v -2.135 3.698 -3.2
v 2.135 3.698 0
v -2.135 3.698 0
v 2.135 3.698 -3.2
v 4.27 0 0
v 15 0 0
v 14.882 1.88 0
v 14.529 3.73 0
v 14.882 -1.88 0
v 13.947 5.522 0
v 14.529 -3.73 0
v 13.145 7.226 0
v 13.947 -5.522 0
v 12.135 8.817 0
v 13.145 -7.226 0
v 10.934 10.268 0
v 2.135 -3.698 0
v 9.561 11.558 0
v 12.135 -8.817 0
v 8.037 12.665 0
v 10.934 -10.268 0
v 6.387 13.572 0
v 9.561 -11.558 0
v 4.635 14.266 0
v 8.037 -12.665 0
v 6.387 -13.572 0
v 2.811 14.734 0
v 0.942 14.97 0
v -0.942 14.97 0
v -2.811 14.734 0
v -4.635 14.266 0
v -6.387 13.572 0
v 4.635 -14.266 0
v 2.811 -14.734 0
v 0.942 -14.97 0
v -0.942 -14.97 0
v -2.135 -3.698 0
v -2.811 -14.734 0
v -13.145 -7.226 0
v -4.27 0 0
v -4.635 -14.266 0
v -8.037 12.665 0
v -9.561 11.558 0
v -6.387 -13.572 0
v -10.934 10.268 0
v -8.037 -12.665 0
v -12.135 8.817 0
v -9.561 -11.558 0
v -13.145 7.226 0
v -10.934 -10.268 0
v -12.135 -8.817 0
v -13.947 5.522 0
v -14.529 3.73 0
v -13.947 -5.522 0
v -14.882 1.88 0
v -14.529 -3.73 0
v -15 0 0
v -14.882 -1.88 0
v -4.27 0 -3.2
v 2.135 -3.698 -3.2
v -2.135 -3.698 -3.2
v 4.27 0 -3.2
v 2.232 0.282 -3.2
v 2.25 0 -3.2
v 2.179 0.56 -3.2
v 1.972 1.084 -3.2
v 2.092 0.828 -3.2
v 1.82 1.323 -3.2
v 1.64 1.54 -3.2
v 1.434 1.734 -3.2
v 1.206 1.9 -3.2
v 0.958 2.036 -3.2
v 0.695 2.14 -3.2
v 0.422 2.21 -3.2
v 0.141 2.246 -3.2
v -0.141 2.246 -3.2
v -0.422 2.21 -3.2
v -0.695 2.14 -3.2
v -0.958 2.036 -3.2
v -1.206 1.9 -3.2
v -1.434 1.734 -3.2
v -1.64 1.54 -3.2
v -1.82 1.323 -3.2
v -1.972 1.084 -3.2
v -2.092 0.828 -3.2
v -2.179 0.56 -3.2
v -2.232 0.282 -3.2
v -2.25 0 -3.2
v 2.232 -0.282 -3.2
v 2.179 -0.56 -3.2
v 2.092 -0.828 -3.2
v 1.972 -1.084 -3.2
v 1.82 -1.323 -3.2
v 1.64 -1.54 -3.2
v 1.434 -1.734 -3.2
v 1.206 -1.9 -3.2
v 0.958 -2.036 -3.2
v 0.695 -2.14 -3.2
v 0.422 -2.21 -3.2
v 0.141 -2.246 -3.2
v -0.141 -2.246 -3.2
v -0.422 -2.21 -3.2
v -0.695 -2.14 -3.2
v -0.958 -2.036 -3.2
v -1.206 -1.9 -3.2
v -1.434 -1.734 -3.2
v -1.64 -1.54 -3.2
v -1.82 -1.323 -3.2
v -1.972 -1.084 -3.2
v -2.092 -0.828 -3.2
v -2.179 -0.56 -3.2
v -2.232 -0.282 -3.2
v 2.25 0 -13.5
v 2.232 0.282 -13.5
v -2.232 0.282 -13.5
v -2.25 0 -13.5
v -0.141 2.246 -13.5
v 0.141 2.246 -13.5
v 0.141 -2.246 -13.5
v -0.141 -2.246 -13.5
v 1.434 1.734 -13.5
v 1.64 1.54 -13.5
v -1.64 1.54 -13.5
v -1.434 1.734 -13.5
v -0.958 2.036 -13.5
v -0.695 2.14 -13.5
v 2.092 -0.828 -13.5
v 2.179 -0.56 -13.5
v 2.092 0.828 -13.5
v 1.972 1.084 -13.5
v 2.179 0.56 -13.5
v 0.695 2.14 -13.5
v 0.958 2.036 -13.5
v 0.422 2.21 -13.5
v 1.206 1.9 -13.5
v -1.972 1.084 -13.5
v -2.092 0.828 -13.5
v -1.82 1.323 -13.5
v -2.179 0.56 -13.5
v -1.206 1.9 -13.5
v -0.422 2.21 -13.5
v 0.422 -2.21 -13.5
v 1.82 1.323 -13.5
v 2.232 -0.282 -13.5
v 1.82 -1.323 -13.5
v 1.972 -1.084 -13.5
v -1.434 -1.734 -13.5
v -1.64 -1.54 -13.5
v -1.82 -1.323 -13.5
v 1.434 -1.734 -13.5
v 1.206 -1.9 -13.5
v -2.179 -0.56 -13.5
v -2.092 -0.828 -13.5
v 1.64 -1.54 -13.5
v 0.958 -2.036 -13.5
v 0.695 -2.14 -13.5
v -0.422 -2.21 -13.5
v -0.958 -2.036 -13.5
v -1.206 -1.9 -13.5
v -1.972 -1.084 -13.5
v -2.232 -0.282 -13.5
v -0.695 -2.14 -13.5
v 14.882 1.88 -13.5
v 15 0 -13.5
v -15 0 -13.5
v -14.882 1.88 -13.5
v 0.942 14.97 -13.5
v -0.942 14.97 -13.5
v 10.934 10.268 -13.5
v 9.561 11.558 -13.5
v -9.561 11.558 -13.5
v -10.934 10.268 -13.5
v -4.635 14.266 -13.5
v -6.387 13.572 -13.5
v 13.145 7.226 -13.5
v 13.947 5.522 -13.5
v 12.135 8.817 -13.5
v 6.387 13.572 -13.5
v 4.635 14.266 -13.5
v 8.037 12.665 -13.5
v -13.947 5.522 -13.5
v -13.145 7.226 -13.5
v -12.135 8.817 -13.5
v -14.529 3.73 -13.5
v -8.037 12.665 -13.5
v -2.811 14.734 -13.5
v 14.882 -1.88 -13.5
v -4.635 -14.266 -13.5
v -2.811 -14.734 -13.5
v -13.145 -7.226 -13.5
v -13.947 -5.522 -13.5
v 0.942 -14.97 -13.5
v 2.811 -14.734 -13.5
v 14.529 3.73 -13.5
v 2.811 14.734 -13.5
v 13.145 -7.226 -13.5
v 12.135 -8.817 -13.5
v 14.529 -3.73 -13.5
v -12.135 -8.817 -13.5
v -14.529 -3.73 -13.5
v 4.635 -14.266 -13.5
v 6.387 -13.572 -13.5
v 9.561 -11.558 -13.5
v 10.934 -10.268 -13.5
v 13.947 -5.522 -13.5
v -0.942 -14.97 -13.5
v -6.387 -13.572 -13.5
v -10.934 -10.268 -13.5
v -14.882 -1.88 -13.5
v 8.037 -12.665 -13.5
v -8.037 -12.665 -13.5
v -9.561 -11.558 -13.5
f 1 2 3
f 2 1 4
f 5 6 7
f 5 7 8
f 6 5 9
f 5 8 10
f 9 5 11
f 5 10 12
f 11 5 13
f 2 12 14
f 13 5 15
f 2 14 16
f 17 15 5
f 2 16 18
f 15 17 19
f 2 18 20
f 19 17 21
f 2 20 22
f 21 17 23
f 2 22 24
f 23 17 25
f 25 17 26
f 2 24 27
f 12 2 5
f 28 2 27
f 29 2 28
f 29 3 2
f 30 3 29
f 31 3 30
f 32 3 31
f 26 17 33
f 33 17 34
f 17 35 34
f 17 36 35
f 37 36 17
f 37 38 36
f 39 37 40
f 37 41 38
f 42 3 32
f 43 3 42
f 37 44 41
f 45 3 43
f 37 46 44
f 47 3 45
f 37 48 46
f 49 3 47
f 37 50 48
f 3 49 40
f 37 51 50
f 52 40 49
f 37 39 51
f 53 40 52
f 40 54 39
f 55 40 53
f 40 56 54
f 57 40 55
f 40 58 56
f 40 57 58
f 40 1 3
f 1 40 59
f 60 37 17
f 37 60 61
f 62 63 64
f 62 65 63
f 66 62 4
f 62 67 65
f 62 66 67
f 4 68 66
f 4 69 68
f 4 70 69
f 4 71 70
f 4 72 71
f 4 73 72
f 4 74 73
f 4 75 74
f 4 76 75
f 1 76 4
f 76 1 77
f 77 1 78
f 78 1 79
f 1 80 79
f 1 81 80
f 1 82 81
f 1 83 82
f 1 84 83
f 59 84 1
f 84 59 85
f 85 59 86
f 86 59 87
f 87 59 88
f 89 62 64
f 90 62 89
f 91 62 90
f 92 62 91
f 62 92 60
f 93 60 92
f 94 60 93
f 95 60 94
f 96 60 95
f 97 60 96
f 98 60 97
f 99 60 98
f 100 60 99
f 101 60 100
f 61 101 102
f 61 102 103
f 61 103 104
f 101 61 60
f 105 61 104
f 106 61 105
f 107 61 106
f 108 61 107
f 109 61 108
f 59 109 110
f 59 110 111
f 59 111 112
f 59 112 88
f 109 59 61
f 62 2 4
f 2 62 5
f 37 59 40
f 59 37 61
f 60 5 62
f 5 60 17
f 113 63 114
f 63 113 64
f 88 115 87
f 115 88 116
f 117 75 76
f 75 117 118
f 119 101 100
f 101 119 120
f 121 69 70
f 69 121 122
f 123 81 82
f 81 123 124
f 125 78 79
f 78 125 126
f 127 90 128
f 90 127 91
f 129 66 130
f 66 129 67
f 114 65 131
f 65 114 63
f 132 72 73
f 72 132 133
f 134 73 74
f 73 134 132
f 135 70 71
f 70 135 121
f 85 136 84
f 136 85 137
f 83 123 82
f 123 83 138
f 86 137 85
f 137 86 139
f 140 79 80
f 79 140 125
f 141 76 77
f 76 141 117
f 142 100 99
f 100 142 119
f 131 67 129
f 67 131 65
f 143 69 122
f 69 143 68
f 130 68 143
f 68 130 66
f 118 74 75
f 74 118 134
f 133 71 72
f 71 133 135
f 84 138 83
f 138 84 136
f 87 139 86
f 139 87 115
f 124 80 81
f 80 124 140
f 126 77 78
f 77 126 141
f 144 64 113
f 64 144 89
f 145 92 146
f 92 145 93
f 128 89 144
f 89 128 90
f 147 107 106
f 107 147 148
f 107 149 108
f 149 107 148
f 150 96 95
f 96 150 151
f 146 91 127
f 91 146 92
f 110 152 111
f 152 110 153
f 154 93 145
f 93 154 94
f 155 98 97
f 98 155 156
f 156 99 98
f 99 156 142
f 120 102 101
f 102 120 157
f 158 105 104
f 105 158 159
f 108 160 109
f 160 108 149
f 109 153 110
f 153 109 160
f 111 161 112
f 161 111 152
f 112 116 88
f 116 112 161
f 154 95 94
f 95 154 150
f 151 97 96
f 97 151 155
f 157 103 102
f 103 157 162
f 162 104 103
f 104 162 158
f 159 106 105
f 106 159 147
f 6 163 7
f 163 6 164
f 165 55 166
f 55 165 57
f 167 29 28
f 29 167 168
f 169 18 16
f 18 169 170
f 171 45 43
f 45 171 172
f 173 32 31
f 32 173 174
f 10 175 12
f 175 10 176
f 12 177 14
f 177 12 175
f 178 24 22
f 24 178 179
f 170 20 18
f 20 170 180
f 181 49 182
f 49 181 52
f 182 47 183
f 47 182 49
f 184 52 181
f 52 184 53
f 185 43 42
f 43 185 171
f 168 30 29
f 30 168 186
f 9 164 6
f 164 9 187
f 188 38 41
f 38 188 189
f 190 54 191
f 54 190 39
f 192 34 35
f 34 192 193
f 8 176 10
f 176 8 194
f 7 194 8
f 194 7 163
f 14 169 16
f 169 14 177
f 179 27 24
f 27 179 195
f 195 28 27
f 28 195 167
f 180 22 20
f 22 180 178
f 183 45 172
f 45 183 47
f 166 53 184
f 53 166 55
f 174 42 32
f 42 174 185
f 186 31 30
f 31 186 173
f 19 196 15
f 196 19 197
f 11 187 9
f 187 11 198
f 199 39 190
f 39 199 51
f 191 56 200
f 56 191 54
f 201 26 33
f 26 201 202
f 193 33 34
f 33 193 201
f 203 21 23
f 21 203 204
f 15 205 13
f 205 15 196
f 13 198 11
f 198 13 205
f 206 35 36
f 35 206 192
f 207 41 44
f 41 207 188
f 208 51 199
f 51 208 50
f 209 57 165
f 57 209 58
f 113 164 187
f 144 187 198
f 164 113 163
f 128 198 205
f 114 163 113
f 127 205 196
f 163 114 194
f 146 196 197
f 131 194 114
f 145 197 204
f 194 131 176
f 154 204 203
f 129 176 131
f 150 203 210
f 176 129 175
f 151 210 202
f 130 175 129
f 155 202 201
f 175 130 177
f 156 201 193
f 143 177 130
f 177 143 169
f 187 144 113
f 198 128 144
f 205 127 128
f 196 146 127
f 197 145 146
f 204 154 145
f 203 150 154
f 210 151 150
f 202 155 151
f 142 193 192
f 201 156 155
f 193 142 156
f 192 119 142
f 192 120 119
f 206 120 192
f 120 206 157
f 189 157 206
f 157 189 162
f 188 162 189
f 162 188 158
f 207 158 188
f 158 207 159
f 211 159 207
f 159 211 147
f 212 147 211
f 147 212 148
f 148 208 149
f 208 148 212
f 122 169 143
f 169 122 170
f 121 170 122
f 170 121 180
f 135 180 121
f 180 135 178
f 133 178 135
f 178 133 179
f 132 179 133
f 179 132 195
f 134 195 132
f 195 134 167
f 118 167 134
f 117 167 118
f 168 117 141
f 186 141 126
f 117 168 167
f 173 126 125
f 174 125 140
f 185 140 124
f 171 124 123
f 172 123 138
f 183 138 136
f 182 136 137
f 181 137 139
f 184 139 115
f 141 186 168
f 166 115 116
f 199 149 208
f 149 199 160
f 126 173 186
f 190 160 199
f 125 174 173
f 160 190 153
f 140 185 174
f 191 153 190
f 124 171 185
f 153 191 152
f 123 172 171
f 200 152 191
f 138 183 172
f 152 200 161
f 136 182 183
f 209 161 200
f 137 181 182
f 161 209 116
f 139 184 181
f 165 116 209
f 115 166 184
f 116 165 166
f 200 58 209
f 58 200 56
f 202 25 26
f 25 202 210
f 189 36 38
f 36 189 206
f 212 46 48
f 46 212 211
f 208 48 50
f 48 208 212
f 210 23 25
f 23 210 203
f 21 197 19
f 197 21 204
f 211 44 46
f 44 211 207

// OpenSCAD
$fn = 50;


difference() {
	union() {
		translate(v = [0, 0, -13.5000000000]) {
			cylinder(h = 13.5000000000, r = 15.0000000000);
		}
	}
	union() {
		translate(v = [0, 0, 0]) {
			rotate(a = [0, 0, 0]) {
				difference() {
					union() {
						translate(v = [0, 0, -3.2000000000]) {
							linear_extrude(height = 3.2000000000) {
								polygon(points = [[4.2698000000, 0.0000000000], [2.1349000000, 3.6977552691], [-2.1349000000, 3.6977552691], [-4.2698000000, 0.0000000000], [-2.1349000000, -3.6977552691], [2.1349000000, -3.6977552691]]);
							}
						}
					}
					union();
				}
			}
		}
		#translate(v = [0, 0, -100.0000000000]) {
			cylinder(h = 200, r = 2.2500000000);
		}
	}
}
